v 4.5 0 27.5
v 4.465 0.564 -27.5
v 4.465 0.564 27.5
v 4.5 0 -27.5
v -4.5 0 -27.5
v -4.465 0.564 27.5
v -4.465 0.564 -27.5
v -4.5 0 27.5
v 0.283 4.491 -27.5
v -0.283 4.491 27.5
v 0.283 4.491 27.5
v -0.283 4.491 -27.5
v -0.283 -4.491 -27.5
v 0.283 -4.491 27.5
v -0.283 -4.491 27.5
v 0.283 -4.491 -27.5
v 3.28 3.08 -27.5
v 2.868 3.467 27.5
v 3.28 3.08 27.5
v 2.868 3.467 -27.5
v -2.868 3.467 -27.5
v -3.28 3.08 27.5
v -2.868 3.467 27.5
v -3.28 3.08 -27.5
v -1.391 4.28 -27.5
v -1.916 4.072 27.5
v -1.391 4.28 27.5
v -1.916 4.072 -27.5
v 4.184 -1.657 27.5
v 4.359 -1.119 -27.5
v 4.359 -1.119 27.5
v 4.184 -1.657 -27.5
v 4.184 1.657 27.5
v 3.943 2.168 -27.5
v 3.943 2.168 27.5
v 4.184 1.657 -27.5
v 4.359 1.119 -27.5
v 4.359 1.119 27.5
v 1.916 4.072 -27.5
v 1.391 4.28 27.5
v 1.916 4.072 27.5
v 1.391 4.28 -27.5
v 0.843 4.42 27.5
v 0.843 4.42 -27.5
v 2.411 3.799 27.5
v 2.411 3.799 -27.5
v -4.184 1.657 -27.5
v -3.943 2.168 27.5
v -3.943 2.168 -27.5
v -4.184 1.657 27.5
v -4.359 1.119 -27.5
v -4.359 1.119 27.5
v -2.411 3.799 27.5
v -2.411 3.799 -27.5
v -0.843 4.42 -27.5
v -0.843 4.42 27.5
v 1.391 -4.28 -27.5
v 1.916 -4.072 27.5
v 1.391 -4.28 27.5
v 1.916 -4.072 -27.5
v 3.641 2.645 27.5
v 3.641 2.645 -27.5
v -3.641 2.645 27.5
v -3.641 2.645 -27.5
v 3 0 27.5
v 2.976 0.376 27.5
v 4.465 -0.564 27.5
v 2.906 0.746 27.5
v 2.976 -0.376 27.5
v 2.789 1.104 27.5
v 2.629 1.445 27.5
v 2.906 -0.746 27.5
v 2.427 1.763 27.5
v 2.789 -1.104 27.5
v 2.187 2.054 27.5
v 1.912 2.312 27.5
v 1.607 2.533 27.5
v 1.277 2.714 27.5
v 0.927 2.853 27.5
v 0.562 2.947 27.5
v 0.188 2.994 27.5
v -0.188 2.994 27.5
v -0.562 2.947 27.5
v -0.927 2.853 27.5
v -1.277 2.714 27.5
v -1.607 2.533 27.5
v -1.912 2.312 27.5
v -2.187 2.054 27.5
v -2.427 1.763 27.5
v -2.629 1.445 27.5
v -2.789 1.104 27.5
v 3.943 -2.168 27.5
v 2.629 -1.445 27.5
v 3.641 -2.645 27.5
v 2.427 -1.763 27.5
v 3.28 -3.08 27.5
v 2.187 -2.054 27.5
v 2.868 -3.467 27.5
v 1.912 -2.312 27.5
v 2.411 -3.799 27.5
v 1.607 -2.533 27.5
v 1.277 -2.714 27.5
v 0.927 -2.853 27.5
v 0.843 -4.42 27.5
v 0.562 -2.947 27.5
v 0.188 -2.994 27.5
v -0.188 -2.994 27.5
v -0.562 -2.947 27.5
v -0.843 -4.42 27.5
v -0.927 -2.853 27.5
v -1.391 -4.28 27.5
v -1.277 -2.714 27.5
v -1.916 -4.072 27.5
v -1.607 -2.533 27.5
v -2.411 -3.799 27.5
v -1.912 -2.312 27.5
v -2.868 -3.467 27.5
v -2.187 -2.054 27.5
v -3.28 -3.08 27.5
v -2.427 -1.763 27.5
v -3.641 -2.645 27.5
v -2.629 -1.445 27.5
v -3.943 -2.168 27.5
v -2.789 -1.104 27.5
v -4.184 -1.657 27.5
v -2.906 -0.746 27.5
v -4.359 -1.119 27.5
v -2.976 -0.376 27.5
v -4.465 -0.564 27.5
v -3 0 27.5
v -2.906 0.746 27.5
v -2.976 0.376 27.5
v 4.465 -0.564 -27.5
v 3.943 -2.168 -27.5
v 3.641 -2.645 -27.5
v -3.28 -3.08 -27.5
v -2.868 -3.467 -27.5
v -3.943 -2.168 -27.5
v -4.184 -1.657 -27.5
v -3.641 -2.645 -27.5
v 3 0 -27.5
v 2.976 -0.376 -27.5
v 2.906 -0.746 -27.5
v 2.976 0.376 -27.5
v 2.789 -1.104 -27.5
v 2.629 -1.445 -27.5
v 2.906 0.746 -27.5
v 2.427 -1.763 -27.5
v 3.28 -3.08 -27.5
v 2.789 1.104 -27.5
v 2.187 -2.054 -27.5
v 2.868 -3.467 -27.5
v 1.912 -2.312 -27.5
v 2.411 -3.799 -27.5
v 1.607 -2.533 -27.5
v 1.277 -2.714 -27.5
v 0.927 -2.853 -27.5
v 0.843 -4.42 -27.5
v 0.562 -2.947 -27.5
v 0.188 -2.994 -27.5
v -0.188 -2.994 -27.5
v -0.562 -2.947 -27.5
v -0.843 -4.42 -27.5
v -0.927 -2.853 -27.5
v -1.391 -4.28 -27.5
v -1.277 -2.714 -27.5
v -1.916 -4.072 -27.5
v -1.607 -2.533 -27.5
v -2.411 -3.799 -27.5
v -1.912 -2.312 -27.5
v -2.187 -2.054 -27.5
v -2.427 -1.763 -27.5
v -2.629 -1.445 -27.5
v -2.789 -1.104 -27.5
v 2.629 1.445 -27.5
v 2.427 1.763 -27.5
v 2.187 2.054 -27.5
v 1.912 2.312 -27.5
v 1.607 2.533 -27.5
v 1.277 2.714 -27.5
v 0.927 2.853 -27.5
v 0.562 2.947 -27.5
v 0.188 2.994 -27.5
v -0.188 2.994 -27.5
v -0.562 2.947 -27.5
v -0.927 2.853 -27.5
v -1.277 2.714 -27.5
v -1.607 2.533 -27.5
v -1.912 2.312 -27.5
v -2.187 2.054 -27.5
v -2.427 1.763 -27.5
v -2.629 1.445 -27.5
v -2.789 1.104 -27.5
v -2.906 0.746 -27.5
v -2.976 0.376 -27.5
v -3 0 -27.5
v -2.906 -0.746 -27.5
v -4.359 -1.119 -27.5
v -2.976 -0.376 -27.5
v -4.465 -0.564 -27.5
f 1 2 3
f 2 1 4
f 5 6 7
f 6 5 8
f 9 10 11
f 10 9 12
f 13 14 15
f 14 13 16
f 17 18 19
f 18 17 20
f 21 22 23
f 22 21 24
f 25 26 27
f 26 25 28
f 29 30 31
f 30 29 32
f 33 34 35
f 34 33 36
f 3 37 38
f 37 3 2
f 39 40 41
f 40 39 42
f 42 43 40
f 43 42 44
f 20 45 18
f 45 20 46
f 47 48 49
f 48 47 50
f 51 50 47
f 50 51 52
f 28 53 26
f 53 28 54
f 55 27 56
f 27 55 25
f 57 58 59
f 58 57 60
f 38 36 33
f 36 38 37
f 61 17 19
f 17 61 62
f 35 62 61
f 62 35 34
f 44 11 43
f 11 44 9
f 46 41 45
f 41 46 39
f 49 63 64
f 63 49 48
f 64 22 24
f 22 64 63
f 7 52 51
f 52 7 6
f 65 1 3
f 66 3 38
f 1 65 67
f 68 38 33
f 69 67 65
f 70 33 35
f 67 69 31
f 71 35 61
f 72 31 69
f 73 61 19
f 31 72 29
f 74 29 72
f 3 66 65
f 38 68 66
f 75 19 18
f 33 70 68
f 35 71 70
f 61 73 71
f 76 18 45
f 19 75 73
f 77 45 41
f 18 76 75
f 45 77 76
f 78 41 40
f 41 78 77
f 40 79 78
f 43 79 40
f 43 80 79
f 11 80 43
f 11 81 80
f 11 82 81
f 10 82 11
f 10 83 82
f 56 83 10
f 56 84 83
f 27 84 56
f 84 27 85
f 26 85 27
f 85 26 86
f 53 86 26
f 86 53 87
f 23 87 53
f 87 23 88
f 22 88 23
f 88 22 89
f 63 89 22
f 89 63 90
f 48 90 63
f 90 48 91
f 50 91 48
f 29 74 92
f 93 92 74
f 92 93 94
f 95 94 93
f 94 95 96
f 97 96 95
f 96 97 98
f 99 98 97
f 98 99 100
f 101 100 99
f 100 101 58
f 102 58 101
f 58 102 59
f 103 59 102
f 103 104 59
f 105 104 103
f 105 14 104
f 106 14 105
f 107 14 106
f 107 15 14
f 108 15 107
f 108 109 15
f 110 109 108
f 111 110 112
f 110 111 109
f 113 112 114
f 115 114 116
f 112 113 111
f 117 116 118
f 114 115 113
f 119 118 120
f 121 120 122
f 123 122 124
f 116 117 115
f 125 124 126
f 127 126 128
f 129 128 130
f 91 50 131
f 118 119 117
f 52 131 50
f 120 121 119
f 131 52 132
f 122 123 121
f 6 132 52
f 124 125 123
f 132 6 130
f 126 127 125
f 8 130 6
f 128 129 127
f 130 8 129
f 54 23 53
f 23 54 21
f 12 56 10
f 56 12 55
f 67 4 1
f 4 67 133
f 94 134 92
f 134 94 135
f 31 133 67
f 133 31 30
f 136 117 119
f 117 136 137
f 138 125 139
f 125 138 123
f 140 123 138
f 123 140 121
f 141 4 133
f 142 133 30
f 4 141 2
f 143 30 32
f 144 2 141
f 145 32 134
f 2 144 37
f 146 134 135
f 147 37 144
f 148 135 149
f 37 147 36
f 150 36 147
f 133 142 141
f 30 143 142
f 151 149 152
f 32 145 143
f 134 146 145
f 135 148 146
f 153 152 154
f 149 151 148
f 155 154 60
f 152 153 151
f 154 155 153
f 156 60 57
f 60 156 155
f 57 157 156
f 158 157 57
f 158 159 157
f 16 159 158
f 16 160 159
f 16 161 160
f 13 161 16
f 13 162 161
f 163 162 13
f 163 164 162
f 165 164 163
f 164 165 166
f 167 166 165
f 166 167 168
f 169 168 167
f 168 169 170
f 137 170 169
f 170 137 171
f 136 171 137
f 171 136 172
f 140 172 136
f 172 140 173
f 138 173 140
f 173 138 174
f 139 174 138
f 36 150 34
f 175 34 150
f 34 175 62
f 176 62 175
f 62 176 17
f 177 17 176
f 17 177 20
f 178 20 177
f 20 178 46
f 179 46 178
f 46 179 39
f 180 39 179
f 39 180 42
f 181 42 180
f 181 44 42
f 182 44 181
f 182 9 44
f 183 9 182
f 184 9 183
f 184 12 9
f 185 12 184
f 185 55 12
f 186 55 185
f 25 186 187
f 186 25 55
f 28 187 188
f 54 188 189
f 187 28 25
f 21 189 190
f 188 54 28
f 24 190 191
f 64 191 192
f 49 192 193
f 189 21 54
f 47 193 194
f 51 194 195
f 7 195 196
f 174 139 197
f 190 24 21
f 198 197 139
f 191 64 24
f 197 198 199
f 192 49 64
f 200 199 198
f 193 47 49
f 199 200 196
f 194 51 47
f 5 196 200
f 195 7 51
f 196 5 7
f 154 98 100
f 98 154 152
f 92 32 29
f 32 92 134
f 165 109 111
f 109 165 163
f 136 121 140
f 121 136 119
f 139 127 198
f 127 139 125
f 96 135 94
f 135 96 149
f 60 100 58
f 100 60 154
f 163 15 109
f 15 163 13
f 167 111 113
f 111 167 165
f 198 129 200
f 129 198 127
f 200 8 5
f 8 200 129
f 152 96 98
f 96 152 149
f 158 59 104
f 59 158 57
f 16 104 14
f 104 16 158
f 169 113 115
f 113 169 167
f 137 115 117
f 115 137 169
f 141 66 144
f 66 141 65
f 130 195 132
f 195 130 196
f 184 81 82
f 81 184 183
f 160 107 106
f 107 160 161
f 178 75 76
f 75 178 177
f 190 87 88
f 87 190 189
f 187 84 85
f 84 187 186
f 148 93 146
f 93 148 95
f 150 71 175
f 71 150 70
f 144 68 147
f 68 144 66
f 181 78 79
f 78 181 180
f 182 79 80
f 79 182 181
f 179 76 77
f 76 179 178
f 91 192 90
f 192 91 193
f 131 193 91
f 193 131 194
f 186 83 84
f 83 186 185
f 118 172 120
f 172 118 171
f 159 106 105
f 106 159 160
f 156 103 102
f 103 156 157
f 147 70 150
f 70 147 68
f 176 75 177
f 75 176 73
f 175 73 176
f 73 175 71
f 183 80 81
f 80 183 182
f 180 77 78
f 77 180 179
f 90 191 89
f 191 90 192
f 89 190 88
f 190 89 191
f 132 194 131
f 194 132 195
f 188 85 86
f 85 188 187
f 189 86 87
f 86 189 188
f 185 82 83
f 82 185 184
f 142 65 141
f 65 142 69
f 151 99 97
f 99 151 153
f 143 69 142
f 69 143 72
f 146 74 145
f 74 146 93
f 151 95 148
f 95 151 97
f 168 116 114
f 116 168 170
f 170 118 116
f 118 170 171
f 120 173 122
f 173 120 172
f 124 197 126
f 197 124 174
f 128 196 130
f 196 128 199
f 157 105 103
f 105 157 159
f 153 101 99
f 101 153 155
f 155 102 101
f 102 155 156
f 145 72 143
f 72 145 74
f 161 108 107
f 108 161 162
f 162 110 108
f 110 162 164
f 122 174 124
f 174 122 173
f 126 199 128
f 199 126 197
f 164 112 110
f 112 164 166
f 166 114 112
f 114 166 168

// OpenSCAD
$fn = 50;


difference() {
	union() {
		translate(v = [0, 0, -27.5000000000]) {
			cylinder(h = 55, r = 4.5000000000);
		}
	}
	union() {
		translate(v = [0, 0, -100.0000000000]) {
			cylinder(h = 200, r = 3);
		}
	}
}
